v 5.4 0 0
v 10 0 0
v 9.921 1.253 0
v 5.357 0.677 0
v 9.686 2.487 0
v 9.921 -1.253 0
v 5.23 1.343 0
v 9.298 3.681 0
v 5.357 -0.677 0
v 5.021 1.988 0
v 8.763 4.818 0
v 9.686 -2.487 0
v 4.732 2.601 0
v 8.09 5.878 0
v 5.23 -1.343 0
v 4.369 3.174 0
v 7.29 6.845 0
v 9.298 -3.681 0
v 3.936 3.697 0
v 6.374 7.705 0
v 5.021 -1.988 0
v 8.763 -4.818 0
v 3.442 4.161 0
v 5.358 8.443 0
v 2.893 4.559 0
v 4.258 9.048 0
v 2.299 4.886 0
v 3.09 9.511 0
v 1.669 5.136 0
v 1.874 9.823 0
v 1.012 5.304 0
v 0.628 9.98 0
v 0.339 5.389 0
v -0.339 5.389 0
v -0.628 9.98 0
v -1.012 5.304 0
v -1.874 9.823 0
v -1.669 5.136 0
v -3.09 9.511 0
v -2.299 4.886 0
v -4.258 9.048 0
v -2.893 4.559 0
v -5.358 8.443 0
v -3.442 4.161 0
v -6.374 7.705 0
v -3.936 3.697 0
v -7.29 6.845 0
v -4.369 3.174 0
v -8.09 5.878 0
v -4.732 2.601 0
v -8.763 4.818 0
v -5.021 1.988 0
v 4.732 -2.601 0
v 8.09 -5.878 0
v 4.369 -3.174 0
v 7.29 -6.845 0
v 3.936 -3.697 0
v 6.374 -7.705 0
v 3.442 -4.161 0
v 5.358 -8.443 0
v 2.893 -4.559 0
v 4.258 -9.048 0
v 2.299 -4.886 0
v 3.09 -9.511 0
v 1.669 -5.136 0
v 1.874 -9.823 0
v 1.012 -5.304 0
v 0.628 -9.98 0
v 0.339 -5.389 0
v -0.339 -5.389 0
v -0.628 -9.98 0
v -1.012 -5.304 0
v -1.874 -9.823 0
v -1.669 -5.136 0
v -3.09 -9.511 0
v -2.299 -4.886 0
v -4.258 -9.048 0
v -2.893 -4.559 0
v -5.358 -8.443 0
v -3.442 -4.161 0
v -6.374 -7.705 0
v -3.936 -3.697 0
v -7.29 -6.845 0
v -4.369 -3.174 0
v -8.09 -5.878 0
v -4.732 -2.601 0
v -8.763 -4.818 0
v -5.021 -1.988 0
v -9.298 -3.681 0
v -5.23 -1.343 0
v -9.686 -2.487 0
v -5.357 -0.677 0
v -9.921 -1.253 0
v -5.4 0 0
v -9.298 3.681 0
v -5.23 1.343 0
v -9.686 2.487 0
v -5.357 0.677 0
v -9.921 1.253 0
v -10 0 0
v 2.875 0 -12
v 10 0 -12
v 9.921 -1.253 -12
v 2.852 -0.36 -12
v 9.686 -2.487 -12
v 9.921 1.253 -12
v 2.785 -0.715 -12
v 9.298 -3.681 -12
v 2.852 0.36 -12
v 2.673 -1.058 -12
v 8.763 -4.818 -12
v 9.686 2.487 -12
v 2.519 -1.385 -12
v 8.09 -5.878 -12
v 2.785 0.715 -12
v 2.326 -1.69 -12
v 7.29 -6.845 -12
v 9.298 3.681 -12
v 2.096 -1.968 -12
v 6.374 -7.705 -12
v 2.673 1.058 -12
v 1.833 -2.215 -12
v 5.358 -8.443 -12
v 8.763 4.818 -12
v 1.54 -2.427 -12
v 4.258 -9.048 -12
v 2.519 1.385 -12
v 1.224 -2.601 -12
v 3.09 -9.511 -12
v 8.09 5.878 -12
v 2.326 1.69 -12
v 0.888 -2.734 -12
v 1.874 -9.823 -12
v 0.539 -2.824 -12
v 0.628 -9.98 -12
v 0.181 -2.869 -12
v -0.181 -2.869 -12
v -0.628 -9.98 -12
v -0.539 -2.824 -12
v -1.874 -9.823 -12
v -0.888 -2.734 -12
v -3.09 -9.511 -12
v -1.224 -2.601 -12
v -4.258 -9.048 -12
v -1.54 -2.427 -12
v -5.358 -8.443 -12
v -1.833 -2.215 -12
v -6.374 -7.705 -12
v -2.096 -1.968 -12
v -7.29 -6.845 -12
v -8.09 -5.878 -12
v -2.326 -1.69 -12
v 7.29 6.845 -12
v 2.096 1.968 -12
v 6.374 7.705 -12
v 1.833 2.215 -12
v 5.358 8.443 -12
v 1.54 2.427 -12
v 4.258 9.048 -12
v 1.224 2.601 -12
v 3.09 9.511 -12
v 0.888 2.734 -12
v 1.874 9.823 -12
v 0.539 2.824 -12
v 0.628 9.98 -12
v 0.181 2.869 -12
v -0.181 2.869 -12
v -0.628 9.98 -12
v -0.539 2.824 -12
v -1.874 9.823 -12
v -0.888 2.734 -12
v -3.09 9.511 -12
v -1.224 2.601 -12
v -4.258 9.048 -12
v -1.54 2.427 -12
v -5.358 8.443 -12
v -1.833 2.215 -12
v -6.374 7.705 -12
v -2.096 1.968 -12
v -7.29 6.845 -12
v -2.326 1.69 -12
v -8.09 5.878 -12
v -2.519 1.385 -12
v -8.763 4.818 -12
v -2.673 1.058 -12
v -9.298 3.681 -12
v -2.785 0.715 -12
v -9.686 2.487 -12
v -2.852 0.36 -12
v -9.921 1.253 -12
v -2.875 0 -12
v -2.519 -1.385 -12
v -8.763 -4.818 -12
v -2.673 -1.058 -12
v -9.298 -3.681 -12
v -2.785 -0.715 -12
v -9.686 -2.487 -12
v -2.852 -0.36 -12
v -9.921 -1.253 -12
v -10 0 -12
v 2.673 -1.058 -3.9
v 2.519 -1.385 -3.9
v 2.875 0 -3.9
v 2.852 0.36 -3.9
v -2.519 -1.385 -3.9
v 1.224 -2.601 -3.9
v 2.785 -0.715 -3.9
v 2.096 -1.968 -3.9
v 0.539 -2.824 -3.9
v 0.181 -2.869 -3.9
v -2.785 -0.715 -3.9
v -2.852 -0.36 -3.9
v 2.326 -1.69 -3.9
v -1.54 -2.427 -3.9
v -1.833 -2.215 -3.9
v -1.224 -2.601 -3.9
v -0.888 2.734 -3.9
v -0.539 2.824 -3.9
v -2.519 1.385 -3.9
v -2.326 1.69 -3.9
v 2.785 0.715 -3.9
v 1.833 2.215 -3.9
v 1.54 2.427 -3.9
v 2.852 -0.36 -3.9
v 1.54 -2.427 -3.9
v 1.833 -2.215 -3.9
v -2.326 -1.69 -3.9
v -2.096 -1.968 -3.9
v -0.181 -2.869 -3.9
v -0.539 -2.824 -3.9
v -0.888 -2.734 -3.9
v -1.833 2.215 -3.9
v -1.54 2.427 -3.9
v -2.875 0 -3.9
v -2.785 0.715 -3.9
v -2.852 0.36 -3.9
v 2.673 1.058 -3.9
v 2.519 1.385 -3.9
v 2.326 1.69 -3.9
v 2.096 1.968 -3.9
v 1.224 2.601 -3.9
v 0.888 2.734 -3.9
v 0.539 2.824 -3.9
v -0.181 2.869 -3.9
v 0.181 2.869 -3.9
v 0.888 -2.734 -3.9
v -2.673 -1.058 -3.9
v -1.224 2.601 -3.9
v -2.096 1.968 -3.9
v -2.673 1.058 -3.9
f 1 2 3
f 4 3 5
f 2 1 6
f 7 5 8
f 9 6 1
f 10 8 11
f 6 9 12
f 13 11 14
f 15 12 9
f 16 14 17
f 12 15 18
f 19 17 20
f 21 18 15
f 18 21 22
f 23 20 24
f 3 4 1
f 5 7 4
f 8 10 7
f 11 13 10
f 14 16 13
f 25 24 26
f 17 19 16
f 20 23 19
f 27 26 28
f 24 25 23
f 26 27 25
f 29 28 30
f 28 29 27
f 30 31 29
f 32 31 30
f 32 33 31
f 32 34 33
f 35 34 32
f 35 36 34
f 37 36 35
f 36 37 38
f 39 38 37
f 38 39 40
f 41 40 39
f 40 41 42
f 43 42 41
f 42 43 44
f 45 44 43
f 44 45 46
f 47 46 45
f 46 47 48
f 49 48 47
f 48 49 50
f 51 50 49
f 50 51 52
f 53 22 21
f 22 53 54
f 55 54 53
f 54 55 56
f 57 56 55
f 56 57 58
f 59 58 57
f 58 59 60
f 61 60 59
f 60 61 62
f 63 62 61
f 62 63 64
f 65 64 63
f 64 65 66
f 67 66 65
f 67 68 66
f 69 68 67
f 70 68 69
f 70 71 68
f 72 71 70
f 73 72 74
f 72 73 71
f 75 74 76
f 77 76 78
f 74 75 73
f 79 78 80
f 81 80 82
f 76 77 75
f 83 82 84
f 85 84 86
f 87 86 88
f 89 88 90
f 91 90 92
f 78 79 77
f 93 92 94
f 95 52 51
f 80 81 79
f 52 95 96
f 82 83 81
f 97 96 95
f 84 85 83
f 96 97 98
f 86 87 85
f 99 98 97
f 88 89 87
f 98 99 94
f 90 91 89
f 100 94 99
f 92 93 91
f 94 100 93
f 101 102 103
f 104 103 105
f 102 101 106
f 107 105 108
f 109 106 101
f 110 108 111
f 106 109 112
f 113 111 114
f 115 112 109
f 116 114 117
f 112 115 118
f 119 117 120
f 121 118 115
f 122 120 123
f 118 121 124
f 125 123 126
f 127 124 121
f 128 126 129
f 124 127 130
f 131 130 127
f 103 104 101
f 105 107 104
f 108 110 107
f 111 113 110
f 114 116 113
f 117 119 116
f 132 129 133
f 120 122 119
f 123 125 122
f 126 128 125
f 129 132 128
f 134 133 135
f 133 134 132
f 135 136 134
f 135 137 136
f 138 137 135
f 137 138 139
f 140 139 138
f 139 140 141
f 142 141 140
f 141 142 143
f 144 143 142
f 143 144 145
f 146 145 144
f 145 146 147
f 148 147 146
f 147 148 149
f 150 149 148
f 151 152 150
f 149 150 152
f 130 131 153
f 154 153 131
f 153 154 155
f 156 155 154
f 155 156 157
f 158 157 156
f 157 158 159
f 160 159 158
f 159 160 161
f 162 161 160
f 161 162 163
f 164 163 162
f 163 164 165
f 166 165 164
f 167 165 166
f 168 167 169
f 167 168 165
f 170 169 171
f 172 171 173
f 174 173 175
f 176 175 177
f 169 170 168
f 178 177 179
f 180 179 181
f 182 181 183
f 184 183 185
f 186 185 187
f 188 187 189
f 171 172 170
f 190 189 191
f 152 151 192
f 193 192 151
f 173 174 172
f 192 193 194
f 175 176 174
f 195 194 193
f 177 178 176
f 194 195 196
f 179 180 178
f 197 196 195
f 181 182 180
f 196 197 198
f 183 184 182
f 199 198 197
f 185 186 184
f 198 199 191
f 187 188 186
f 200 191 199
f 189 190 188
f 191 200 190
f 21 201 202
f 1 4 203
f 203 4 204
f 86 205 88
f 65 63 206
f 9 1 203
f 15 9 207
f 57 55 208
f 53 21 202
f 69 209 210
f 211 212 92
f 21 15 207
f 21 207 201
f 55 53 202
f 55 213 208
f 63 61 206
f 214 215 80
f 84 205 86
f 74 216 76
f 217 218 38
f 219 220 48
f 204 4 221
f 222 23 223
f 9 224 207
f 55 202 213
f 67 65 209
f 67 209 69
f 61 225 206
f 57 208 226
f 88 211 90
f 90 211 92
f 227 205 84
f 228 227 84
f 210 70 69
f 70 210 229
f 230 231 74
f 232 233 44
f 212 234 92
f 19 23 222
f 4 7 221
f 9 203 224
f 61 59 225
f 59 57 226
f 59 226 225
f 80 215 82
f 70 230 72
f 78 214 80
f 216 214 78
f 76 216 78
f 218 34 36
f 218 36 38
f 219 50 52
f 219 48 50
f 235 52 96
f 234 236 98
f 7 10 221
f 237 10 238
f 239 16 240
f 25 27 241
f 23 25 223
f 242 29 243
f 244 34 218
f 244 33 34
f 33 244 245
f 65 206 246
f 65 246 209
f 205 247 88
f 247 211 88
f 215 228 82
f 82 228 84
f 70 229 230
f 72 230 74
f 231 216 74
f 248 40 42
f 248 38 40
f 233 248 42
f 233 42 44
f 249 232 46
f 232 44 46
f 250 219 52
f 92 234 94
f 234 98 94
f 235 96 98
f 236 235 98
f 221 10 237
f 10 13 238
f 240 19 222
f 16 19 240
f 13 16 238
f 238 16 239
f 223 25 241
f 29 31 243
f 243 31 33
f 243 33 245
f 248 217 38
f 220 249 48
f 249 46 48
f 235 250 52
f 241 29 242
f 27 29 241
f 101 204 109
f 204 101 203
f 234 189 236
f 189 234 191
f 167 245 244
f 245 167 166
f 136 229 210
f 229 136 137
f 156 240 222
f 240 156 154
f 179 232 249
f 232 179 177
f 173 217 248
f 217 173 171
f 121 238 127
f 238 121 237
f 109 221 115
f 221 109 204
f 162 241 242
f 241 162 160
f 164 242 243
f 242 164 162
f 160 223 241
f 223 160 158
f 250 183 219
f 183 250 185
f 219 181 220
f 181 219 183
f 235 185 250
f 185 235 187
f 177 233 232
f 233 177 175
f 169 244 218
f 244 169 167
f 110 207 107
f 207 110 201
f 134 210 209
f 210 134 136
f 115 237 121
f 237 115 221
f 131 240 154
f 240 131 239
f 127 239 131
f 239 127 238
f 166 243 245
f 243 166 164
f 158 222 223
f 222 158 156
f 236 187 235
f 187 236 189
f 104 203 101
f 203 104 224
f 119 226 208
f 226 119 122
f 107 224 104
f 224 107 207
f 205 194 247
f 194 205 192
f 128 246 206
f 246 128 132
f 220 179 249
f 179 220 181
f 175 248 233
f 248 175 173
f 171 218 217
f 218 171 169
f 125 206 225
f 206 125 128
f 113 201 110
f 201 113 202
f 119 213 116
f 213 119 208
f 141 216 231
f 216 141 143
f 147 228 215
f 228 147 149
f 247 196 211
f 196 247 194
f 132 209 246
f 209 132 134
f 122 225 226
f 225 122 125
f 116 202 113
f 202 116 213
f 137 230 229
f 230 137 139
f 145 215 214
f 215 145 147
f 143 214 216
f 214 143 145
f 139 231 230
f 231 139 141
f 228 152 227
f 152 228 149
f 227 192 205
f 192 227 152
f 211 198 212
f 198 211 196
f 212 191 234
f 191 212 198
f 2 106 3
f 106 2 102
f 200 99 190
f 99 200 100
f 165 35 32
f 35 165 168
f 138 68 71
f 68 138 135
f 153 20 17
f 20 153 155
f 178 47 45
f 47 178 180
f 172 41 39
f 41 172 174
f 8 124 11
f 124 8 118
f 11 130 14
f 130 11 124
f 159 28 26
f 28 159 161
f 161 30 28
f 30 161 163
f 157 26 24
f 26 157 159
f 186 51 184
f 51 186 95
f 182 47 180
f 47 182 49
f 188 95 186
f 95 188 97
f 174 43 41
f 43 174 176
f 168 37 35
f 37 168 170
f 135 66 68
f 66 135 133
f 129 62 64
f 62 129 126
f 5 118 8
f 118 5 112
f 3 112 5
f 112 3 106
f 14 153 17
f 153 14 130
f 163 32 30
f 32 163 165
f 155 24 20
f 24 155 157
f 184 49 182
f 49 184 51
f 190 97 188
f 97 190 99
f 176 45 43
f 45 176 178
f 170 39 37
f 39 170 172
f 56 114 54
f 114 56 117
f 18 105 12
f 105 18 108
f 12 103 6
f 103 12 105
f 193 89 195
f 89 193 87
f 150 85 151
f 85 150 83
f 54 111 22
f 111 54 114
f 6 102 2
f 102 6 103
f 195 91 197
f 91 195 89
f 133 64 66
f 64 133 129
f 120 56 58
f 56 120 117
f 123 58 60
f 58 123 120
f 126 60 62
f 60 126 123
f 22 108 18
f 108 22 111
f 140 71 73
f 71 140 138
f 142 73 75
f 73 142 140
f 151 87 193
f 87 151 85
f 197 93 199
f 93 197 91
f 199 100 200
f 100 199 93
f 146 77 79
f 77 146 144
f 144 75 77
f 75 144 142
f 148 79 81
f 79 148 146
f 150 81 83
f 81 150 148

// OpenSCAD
$fn = 50;


difference() {
	union() {
		translate(v = [0, 0, -12.0000000000]) {
			cylinder(h = 12, r = 10.0000000000);
		}
	}
	union() {
		translate(v = [0, 0, 0]) {
			rotate(a = [0, 0, 0]) {
				difference() {
					union() {
						#translate(v = [0, 0, -12.0000000000]) {
							cylinder(h = 12, r = 2.6000000000);
						}
						#translate(v = [0, 0, -3.9000000000]) {
							cylinder(h = 3.9000000000, r = 10.0000000000, r1 = 2.8750000000, r2 = 5.4000000000);
						}
						#translate(v = [0, 0, -12.0000000000]) {
							cylinder(h = 12, r = 2.8750000000);
						}
						#translate(v = [0, 0, -12.0000000000]) {
							cylinder(h = 12, r = 2.6000000000);
						}
					}
					union();
				}
			}
		}
	}
}
